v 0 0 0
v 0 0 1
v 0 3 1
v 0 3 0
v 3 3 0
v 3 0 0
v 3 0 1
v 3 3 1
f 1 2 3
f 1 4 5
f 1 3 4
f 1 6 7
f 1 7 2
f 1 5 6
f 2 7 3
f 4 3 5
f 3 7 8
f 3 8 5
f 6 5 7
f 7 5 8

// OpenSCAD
/* Warning, this is a very basic generator with a lot of approximation 
input data : [VQFN, 3ZW, 3x3mm, 20, , A, C04-00578A]
generated by com.zoubworld.electronics.cad.model3d.Basic
Date : Sun Feb 15 10:50:49 CET 2026
*/

//body
color("black")
translate([0,0,0])
cube([3.0,3.0,1.0], center=false);
